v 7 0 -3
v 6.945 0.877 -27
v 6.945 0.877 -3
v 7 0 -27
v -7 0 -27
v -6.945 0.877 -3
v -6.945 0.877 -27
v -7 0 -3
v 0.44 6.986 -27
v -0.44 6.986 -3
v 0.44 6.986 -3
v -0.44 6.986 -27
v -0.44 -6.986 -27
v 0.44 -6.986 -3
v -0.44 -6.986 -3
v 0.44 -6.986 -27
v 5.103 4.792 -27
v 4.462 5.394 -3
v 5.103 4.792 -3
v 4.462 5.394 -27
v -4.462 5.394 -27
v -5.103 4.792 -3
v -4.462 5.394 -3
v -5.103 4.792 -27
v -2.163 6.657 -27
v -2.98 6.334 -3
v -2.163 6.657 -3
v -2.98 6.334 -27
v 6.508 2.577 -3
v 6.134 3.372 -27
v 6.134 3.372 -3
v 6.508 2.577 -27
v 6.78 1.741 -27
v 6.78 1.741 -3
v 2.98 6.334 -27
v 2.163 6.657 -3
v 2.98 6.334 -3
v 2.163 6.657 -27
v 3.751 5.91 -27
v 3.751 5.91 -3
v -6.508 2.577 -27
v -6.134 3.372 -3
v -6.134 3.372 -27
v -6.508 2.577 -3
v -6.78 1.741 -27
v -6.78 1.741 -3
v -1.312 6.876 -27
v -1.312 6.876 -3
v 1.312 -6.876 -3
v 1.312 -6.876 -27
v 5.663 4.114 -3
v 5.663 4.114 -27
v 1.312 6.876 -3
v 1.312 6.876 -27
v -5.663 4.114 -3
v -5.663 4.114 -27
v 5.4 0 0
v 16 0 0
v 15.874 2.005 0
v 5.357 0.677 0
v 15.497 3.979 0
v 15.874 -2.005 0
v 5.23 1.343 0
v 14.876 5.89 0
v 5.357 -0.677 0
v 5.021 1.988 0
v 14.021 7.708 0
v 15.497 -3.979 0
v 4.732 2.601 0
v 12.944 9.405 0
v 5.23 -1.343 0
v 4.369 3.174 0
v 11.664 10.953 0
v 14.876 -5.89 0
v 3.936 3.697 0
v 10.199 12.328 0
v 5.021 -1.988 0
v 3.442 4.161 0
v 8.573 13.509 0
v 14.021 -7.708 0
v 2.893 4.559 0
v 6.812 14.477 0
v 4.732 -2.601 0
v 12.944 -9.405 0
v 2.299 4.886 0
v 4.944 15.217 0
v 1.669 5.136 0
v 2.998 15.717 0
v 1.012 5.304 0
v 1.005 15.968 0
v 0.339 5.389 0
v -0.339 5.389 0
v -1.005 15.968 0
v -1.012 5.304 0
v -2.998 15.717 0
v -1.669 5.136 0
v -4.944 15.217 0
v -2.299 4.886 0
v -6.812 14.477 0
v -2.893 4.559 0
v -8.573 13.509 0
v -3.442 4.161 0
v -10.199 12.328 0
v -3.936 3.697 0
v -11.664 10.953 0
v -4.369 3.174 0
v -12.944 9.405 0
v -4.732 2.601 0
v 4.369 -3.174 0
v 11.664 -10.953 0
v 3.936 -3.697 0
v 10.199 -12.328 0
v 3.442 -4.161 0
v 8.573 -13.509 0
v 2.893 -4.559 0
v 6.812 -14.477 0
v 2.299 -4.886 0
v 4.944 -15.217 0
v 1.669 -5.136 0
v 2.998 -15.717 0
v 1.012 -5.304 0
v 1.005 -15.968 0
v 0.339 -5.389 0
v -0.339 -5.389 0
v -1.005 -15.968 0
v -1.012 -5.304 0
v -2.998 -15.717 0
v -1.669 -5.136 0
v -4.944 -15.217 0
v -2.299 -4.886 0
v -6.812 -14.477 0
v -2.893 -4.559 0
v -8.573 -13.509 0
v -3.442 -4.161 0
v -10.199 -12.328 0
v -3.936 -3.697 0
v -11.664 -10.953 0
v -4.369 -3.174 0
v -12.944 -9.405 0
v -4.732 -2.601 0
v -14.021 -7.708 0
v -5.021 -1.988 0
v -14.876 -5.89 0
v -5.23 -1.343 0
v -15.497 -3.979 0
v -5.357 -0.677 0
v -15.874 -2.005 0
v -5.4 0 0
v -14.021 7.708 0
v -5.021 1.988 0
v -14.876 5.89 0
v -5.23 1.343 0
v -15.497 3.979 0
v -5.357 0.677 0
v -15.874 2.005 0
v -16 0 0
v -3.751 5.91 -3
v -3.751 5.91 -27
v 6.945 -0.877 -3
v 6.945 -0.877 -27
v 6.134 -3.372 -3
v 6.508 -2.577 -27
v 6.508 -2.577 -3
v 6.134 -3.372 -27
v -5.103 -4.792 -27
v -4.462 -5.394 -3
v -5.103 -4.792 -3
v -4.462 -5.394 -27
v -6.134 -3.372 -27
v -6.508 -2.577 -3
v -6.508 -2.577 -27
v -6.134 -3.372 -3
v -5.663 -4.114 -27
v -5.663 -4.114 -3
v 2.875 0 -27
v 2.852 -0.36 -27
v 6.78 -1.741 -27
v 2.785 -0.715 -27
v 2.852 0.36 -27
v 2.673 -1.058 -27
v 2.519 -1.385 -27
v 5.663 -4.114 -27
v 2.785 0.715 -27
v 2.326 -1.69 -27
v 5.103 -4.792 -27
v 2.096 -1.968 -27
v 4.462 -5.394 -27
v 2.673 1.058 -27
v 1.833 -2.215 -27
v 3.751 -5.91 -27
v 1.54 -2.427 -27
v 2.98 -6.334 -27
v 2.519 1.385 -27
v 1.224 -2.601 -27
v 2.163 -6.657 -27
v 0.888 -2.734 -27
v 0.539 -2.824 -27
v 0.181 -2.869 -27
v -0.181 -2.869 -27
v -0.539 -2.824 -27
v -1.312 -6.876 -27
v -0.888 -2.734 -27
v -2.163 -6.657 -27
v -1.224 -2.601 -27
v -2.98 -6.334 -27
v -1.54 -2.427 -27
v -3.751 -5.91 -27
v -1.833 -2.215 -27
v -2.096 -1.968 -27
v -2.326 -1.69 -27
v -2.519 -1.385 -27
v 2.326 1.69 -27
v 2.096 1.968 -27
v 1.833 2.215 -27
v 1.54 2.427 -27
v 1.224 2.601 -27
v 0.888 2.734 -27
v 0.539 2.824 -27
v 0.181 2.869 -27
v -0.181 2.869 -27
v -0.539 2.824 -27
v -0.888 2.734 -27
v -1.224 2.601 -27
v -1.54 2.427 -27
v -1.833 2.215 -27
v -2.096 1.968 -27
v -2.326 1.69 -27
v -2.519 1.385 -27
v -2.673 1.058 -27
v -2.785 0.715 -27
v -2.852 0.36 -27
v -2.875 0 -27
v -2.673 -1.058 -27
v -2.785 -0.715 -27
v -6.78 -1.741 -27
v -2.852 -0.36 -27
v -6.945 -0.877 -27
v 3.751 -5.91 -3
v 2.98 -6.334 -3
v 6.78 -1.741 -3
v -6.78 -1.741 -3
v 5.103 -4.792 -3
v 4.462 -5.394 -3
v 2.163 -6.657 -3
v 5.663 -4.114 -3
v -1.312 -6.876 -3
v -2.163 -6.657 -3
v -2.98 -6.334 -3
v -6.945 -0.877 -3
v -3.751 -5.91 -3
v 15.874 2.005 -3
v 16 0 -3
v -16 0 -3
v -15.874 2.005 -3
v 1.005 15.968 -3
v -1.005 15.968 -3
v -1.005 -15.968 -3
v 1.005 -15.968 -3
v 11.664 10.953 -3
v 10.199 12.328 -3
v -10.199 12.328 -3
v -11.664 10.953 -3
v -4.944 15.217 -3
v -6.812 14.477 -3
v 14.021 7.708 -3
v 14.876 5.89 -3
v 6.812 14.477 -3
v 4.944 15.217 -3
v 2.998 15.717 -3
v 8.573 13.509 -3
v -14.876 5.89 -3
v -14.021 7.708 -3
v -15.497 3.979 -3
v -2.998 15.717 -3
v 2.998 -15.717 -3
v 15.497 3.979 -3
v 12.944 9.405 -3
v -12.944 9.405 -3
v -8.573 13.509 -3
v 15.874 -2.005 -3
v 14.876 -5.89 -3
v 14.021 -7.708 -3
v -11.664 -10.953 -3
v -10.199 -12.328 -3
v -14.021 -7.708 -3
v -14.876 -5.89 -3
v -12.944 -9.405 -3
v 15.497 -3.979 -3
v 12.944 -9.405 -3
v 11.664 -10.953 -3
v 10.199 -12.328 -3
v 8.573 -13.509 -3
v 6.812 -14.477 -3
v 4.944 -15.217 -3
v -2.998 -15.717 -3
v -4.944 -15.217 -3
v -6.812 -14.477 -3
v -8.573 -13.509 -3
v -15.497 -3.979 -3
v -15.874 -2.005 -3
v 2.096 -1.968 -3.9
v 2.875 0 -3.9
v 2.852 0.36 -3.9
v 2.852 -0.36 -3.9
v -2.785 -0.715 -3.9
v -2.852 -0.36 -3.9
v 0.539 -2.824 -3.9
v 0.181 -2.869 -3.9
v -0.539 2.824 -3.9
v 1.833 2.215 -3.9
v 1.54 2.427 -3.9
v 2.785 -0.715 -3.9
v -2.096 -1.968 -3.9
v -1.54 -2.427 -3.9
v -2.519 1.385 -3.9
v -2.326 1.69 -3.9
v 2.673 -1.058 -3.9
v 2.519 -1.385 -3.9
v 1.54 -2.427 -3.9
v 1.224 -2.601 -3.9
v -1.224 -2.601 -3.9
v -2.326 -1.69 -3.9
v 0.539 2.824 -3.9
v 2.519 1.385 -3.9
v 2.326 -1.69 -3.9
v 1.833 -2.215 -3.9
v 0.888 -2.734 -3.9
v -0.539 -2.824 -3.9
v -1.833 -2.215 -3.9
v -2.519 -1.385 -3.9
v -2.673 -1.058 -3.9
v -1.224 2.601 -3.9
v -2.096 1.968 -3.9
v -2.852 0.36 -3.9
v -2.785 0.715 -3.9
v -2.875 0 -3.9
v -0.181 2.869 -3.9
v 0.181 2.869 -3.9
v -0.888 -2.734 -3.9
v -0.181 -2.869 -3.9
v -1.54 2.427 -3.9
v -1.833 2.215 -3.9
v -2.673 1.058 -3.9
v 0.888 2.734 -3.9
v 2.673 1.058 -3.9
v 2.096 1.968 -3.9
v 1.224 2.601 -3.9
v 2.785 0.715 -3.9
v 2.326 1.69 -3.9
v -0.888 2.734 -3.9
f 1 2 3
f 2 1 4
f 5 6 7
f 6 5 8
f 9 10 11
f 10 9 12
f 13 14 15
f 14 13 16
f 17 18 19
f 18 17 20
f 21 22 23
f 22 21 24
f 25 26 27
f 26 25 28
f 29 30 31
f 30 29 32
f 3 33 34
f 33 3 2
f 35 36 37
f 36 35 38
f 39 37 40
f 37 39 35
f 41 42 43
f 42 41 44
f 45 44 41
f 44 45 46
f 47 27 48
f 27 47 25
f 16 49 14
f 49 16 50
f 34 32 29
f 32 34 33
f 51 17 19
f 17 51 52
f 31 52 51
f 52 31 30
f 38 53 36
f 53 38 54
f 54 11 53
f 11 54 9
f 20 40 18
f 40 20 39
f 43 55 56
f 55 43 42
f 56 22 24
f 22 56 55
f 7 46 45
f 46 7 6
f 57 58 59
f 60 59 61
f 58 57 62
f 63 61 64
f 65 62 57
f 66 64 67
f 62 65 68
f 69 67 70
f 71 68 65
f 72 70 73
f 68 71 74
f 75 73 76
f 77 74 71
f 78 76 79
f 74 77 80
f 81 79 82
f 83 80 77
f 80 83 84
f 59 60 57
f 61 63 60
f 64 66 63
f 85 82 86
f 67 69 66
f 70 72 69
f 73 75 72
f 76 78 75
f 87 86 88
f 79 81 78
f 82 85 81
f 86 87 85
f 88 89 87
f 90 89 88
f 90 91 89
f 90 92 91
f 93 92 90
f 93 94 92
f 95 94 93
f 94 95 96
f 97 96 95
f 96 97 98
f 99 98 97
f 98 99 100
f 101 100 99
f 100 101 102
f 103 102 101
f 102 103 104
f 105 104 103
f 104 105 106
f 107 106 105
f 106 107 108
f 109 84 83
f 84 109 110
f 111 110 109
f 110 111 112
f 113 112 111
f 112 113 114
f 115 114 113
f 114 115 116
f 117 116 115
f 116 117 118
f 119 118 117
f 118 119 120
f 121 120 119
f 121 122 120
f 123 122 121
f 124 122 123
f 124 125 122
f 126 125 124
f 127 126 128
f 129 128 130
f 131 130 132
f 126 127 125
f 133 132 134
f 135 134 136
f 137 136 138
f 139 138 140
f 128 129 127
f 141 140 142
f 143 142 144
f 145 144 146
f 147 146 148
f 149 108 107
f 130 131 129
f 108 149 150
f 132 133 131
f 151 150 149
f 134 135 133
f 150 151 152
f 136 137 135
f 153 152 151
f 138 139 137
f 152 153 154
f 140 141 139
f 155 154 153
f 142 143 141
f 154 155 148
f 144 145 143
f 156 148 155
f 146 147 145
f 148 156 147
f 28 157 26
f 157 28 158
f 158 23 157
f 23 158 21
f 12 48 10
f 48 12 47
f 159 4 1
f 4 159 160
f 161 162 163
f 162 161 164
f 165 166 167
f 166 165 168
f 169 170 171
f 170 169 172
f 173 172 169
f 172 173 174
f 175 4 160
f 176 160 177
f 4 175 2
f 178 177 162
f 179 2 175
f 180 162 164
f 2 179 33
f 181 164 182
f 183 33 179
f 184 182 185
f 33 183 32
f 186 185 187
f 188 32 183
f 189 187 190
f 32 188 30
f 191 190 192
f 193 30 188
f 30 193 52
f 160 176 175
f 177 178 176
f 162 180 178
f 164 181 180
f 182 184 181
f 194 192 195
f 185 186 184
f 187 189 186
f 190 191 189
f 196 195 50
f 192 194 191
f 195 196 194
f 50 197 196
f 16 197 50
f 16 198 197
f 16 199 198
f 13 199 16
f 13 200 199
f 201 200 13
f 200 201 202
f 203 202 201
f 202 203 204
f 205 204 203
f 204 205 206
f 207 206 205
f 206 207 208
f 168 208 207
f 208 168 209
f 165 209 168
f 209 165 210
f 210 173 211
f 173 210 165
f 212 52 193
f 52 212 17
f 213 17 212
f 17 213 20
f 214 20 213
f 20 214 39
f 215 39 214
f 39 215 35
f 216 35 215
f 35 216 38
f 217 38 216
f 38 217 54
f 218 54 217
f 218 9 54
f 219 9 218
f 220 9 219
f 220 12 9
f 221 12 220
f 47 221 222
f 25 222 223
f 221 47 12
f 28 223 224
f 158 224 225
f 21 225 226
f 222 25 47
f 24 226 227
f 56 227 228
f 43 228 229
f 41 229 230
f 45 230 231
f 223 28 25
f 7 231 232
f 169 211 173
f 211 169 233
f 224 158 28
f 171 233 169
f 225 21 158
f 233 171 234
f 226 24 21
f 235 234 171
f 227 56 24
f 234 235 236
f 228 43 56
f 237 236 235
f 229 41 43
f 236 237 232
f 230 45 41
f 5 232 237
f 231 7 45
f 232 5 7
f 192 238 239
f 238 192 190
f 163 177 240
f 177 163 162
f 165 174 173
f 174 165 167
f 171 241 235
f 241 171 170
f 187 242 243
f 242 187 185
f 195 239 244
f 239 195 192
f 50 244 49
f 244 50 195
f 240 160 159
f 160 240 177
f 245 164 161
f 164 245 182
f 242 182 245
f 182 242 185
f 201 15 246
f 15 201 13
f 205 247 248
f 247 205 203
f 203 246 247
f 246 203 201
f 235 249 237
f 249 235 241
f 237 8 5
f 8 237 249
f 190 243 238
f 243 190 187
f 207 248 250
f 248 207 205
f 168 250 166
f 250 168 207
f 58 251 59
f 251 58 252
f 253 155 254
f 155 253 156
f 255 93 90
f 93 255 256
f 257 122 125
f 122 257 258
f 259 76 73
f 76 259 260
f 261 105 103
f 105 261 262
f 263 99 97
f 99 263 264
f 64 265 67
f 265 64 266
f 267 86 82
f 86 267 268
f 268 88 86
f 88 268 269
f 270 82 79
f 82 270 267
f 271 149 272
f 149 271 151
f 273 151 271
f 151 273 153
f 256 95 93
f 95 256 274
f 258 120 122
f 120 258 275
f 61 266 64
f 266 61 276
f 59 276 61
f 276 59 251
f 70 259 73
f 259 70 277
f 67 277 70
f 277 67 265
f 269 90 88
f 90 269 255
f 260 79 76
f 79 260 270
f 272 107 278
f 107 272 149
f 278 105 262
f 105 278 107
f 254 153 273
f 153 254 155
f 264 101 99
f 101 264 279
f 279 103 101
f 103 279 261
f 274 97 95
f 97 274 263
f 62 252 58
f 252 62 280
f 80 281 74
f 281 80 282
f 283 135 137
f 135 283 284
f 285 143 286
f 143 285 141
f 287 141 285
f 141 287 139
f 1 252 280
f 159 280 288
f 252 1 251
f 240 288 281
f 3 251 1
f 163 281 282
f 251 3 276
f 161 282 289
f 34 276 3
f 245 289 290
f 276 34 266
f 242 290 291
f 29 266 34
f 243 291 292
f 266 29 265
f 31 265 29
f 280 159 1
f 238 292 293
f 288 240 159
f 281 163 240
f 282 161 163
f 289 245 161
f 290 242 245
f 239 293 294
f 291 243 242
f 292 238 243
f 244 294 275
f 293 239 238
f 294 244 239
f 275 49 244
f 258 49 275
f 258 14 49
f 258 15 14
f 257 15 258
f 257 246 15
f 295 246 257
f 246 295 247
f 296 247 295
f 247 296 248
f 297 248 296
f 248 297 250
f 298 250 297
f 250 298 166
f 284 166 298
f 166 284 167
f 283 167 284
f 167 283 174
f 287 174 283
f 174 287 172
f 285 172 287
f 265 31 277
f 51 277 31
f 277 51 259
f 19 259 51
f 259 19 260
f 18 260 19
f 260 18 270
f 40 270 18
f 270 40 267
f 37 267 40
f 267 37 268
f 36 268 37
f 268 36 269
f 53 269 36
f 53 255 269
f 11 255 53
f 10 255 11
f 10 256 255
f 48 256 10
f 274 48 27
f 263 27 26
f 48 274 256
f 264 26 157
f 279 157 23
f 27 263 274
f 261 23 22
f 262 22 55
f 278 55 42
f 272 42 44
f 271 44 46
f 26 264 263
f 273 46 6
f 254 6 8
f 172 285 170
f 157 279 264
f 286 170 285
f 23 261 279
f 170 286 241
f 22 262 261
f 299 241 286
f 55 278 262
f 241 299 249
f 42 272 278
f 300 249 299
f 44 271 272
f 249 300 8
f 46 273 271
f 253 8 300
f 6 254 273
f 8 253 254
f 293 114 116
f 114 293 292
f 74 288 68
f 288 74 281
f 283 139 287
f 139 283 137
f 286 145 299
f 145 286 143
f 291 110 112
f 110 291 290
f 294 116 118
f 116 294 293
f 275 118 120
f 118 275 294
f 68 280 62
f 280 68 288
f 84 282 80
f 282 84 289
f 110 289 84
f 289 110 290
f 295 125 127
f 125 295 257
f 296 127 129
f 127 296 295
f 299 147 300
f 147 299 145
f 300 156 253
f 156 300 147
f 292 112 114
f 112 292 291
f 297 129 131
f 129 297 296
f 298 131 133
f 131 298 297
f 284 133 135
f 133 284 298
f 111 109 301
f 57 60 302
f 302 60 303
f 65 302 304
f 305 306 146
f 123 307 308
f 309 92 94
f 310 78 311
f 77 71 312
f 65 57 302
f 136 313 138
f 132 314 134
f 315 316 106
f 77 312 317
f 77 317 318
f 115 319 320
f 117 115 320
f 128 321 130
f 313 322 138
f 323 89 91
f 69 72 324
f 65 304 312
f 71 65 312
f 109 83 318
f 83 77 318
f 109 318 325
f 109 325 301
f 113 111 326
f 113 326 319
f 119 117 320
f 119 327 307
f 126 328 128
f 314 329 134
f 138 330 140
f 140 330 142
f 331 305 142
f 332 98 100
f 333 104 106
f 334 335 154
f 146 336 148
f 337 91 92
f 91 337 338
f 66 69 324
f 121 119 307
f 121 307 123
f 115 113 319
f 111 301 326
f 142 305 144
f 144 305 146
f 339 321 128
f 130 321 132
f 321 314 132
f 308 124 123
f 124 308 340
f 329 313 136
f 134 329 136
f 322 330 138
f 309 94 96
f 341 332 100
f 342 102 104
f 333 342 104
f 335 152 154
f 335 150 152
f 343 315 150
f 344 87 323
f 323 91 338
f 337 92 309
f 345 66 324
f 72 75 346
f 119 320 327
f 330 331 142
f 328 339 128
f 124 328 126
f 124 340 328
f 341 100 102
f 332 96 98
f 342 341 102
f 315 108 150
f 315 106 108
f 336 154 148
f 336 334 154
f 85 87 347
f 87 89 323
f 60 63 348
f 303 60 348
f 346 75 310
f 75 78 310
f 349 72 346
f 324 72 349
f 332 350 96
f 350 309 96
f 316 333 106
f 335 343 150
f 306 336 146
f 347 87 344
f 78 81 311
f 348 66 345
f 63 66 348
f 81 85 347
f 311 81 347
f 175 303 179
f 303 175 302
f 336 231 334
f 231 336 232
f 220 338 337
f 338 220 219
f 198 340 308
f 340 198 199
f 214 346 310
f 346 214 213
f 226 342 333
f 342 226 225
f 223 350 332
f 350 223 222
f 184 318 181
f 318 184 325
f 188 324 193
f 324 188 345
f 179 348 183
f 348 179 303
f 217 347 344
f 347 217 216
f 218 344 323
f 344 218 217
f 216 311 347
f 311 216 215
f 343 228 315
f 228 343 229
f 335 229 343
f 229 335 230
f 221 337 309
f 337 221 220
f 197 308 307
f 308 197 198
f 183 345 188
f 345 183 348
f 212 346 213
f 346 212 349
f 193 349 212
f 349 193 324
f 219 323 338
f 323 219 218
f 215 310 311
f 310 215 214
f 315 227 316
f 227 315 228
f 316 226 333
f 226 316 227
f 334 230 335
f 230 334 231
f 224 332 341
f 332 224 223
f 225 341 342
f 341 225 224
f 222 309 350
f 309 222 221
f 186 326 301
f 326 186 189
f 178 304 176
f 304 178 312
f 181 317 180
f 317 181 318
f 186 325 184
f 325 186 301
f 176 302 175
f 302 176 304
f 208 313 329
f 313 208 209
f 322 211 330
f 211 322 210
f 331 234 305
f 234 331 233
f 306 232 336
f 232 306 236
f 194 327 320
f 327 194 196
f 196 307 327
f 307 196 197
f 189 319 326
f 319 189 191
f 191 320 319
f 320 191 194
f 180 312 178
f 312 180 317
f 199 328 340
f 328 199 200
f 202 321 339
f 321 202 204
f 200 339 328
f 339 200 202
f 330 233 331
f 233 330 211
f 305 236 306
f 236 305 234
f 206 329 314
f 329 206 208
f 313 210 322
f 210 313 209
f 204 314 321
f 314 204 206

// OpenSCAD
$fn = 50;


difference() {
	union() {
		translate(v = [0, 0, -27.0000000000]) {
			cylinder(h = 27, r = 7.0000000000);
		}
		translate(v = [0, 0, -3.0000000000]) {
			cylinder(h = 3, r = 16.0000000000);
		}
	}
	union() {
		translate(v = [0, 0, 0]) {
			rotate(a = [0, 0, 0]) {
				difference() {
					union() {
						#translate(v = [0, 0, -27.0000000000]) {
							cylinder(h = 27, r = 2.6000000000);
						}
						#translate(v = [0, 0, -3.9000000000]) {
							cylinder(h = 3.9000000000, r1 = 2.8750000000, r2 = 5.4000000000);
						}
						#translate(v = [0, 0, -27.0000000000]) {
							cylinder(h = 27, r = 2.8750000000);
						}
						#translate(v = [0, 0, -27.0000000000]) {
							cylinder(h = 27, r = 2.6000000000);
						}
					}
					union();
				}
			}
		}
	}
}
